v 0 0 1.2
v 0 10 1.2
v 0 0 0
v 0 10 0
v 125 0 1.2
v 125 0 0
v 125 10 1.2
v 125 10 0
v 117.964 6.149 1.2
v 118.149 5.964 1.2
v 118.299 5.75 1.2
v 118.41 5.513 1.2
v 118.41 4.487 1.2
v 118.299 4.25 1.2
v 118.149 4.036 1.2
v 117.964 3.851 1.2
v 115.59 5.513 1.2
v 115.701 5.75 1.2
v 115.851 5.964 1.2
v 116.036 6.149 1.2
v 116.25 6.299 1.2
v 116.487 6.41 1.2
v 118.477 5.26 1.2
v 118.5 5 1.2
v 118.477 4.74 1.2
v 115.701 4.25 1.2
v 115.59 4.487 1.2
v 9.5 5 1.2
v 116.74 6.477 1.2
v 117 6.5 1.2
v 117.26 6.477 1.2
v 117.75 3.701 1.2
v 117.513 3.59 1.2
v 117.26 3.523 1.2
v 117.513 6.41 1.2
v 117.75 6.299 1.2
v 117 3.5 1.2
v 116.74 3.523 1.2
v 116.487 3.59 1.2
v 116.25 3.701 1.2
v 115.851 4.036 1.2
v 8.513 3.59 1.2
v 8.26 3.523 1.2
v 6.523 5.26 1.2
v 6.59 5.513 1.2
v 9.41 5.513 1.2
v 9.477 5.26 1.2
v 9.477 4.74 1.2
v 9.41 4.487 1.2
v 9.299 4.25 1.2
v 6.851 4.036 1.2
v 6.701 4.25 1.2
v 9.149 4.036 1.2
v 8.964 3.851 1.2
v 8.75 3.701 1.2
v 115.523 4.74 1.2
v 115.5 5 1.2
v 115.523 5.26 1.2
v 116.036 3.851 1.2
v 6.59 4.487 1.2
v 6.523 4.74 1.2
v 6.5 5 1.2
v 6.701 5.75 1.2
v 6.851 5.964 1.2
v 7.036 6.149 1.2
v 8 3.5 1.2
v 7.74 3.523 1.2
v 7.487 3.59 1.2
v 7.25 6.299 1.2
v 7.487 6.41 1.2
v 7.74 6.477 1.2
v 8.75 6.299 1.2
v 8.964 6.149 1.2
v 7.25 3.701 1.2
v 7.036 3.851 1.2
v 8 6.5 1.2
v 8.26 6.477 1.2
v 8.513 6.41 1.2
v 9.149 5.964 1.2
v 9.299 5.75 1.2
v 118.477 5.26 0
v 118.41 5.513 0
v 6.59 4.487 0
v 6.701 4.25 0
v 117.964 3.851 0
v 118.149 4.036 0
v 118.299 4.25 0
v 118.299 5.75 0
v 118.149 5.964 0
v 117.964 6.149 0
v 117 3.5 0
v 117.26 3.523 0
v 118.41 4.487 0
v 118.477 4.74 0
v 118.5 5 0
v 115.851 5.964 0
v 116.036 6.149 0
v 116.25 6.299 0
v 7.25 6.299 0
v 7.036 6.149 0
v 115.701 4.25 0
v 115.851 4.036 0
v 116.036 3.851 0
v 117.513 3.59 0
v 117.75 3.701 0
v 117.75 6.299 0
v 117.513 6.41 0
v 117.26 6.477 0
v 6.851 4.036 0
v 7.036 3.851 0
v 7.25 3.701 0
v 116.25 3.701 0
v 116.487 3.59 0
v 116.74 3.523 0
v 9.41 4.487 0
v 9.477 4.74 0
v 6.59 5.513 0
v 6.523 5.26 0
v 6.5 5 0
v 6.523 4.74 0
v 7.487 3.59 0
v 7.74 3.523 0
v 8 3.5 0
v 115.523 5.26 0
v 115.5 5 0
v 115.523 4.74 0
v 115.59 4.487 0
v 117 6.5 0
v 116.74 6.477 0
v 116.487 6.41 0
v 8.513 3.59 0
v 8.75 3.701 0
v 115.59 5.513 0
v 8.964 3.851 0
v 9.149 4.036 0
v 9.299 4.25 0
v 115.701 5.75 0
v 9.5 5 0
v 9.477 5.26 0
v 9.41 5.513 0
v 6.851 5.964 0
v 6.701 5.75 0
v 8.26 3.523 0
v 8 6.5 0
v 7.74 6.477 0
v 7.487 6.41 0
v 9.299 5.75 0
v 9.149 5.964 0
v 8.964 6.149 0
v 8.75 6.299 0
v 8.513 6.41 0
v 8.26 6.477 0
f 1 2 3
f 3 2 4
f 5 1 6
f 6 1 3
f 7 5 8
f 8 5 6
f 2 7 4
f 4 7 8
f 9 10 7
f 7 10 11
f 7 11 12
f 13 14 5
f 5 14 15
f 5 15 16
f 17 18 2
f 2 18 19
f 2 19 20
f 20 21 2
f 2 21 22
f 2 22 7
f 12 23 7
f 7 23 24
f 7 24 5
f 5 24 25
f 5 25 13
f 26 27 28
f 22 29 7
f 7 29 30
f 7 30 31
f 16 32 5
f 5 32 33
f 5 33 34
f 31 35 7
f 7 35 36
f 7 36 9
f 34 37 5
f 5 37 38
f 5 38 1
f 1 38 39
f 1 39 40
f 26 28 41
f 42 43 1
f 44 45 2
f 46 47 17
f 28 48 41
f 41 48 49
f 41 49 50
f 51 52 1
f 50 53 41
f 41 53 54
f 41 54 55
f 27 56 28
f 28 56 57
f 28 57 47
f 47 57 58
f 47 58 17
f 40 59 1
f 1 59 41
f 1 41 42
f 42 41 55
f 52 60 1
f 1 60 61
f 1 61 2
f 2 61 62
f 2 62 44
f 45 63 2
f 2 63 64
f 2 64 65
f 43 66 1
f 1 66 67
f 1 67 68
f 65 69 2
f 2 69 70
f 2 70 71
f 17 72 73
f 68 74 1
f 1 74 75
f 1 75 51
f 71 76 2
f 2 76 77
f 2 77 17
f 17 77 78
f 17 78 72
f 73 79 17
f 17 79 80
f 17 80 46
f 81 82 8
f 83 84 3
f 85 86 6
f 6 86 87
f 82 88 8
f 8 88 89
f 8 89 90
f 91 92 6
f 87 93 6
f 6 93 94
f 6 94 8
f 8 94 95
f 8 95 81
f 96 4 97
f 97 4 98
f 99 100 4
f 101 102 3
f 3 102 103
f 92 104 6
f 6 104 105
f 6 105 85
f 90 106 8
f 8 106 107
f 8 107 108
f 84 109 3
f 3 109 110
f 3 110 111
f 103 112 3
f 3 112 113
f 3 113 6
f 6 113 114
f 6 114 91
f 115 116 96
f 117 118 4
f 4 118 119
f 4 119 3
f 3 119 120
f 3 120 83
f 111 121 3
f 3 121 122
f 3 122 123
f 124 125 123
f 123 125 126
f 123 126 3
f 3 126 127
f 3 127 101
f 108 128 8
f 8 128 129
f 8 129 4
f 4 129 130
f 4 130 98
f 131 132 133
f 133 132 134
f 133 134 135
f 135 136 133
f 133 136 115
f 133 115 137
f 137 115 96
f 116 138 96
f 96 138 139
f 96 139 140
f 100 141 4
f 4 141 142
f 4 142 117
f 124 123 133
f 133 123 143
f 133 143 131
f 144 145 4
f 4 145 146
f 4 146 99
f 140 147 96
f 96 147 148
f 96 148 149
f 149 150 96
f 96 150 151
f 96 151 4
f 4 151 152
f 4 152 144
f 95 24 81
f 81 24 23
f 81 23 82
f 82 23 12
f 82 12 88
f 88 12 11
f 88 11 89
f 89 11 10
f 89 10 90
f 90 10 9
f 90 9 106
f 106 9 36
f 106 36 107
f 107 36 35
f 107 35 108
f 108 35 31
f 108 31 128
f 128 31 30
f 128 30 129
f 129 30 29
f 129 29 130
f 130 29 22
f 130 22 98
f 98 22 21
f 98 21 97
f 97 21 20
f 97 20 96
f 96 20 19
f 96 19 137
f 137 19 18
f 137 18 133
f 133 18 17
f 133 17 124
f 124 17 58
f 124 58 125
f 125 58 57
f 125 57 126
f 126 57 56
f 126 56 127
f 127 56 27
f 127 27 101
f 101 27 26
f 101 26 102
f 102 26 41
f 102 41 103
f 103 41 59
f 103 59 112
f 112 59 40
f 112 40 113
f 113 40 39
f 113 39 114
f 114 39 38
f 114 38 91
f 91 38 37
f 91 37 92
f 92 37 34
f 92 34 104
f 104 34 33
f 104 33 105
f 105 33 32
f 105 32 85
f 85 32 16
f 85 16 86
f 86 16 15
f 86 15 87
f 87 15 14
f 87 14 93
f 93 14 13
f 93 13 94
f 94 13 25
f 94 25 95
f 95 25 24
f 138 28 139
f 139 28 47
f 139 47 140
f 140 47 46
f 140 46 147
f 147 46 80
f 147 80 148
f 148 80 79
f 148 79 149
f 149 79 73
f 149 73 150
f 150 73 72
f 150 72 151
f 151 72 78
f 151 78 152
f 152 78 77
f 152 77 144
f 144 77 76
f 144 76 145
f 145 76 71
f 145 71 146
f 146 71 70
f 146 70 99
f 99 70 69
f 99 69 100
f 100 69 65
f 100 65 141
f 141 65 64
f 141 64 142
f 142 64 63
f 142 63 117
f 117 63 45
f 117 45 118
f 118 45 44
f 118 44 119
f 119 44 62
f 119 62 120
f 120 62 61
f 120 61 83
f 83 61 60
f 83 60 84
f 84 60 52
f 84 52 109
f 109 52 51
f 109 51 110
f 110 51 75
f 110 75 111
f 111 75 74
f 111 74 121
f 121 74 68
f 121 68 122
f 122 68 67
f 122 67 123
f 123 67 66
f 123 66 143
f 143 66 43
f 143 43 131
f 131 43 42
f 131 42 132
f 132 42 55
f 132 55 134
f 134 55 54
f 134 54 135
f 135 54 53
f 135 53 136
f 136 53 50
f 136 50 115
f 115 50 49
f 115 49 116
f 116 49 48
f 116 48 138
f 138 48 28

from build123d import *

# Parameters (mm, degrees)
SKETCH1_W           = 125
SKETCH1_H           = 10
BOSS_EXTRUDE1_DEPTH = 1.2
SKETCH2_R           = 1.5
CUT_EXTRUDE1_DEPTH  = 5


with BuildPart() as part:
    # Sketch1 → Boss-Extrude1 (new body)
    with BuildSketch(Plane.XY):
        with Locations((62.5, 5)):
            Rectangle(SKETCH1_W, SKETCH1_H)
    extrude(amount=BOSS_EXTRUDE1_DEPTH)

    # Sketch2 → Cut-Extrude1 (cut, symmetric)
    with BuildSketch(Plane.XY):
        with Locations((8, 5)):
            Circle(SKETCH2_R)
        with Locations((117, 5)):
            Circle(SKETCH2_R)
    extrude(amount=CUT_EXTRUDE1_DEPTH, both=True, mode=Mode.SUBTRACT)


solid = part.part
